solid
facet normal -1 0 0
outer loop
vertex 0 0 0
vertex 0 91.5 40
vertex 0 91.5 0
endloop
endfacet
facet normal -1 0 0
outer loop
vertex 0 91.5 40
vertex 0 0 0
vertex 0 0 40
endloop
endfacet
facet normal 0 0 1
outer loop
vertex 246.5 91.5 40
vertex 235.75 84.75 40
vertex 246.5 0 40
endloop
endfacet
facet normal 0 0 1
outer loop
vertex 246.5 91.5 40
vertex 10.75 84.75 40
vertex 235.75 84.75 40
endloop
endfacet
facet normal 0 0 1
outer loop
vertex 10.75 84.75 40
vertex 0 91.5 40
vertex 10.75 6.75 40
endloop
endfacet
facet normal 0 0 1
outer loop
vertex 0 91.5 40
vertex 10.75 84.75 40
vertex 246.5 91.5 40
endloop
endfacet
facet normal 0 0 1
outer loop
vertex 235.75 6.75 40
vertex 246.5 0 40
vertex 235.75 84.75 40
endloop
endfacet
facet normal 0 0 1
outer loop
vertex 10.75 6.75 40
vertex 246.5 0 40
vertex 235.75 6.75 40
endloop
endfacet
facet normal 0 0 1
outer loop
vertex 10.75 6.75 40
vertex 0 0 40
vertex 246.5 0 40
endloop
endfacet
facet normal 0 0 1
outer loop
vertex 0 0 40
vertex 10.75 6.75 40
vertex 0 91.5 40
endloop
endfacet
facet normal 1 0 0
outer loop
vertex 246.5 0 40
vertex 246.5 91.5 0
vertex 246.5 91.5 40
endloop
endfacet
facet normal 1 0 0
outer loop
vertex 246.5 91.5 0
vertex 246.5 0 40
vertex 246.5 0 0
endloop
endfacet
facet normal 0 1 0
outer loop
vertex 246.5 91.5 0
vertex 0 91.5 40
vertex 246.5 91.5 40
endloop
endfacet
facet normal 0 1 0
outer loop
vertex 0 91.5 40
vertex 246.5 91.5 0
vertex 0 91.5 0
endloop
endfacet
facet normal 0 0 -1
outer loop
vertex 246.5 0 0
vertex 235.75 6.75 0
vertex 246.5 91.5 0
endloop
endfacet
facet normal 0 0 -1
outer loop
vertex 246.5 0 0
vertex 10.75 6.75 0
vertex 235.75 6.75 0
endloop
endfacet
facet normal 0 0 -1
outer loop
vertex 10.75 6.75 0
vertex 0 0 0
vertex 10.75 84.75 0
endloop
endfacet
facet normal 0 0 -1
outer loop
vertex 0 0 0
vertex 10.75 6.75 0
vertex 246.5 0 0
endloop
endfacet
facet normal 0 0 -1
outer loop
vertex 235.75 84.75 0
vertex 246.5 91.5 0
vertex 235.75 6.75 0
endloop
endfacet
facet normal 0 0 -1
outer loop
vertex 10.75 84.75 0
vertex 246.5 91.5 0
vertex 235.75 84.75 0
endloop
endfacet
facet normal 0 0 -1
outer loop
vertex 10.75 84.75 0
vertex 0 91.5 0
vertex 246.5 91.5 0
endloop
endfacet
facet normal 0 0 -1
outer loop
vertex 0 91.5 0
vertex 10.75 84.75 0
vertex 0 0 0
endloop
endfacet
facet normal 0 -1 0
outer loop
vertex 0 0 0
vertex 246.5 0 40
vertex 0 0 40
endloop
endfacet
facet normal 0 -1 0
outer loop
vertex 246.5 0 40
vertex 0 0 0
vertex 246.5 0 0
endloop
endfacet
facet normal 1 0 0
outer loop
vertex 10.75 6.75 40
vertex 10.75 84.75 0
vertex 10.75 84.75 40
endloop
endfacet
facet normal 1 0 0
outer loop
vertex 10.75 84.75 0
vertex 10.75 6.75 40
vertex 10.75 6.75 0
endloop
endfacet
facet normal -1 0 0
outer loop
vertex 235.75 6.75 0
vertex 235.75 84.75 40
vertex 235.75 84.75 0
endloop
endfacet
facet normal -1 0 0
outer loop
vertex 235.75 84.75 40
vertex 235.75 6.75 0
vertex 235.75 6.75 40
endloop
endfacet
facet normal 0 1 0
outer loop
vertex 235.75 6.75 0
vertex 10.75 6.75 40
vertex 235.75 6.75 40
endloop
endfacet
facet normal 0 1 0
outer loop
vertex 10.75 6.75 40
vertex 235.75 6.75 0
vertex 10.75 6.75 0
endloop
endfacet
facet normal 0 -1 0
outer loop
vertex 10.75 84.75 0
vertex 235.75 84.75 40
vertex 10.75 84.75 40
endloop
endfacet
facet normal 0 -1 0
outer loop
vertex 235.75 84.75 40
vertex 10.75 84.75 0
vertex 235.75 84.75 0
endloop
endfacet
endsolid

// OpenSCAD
// Opentrons Fixed Trash
// loadName: opentrons_1_trash_3200ml_fixed
// Auto-generated by labware_to_stl.py from Opentrons V2 labware definition

$fn = 64;

difference() {
    // ── Labware body ──────────────────────────────────────────────
    cube([246.5000, 91.5000, 40.0000]);

    // ── Well cutouts ──────────────────────────────────────────────
    // Well A1
    translate([10.7500, 6.7500, 0.0000])
        cube([225.0000, 78.0000, 41.0000]);
}
